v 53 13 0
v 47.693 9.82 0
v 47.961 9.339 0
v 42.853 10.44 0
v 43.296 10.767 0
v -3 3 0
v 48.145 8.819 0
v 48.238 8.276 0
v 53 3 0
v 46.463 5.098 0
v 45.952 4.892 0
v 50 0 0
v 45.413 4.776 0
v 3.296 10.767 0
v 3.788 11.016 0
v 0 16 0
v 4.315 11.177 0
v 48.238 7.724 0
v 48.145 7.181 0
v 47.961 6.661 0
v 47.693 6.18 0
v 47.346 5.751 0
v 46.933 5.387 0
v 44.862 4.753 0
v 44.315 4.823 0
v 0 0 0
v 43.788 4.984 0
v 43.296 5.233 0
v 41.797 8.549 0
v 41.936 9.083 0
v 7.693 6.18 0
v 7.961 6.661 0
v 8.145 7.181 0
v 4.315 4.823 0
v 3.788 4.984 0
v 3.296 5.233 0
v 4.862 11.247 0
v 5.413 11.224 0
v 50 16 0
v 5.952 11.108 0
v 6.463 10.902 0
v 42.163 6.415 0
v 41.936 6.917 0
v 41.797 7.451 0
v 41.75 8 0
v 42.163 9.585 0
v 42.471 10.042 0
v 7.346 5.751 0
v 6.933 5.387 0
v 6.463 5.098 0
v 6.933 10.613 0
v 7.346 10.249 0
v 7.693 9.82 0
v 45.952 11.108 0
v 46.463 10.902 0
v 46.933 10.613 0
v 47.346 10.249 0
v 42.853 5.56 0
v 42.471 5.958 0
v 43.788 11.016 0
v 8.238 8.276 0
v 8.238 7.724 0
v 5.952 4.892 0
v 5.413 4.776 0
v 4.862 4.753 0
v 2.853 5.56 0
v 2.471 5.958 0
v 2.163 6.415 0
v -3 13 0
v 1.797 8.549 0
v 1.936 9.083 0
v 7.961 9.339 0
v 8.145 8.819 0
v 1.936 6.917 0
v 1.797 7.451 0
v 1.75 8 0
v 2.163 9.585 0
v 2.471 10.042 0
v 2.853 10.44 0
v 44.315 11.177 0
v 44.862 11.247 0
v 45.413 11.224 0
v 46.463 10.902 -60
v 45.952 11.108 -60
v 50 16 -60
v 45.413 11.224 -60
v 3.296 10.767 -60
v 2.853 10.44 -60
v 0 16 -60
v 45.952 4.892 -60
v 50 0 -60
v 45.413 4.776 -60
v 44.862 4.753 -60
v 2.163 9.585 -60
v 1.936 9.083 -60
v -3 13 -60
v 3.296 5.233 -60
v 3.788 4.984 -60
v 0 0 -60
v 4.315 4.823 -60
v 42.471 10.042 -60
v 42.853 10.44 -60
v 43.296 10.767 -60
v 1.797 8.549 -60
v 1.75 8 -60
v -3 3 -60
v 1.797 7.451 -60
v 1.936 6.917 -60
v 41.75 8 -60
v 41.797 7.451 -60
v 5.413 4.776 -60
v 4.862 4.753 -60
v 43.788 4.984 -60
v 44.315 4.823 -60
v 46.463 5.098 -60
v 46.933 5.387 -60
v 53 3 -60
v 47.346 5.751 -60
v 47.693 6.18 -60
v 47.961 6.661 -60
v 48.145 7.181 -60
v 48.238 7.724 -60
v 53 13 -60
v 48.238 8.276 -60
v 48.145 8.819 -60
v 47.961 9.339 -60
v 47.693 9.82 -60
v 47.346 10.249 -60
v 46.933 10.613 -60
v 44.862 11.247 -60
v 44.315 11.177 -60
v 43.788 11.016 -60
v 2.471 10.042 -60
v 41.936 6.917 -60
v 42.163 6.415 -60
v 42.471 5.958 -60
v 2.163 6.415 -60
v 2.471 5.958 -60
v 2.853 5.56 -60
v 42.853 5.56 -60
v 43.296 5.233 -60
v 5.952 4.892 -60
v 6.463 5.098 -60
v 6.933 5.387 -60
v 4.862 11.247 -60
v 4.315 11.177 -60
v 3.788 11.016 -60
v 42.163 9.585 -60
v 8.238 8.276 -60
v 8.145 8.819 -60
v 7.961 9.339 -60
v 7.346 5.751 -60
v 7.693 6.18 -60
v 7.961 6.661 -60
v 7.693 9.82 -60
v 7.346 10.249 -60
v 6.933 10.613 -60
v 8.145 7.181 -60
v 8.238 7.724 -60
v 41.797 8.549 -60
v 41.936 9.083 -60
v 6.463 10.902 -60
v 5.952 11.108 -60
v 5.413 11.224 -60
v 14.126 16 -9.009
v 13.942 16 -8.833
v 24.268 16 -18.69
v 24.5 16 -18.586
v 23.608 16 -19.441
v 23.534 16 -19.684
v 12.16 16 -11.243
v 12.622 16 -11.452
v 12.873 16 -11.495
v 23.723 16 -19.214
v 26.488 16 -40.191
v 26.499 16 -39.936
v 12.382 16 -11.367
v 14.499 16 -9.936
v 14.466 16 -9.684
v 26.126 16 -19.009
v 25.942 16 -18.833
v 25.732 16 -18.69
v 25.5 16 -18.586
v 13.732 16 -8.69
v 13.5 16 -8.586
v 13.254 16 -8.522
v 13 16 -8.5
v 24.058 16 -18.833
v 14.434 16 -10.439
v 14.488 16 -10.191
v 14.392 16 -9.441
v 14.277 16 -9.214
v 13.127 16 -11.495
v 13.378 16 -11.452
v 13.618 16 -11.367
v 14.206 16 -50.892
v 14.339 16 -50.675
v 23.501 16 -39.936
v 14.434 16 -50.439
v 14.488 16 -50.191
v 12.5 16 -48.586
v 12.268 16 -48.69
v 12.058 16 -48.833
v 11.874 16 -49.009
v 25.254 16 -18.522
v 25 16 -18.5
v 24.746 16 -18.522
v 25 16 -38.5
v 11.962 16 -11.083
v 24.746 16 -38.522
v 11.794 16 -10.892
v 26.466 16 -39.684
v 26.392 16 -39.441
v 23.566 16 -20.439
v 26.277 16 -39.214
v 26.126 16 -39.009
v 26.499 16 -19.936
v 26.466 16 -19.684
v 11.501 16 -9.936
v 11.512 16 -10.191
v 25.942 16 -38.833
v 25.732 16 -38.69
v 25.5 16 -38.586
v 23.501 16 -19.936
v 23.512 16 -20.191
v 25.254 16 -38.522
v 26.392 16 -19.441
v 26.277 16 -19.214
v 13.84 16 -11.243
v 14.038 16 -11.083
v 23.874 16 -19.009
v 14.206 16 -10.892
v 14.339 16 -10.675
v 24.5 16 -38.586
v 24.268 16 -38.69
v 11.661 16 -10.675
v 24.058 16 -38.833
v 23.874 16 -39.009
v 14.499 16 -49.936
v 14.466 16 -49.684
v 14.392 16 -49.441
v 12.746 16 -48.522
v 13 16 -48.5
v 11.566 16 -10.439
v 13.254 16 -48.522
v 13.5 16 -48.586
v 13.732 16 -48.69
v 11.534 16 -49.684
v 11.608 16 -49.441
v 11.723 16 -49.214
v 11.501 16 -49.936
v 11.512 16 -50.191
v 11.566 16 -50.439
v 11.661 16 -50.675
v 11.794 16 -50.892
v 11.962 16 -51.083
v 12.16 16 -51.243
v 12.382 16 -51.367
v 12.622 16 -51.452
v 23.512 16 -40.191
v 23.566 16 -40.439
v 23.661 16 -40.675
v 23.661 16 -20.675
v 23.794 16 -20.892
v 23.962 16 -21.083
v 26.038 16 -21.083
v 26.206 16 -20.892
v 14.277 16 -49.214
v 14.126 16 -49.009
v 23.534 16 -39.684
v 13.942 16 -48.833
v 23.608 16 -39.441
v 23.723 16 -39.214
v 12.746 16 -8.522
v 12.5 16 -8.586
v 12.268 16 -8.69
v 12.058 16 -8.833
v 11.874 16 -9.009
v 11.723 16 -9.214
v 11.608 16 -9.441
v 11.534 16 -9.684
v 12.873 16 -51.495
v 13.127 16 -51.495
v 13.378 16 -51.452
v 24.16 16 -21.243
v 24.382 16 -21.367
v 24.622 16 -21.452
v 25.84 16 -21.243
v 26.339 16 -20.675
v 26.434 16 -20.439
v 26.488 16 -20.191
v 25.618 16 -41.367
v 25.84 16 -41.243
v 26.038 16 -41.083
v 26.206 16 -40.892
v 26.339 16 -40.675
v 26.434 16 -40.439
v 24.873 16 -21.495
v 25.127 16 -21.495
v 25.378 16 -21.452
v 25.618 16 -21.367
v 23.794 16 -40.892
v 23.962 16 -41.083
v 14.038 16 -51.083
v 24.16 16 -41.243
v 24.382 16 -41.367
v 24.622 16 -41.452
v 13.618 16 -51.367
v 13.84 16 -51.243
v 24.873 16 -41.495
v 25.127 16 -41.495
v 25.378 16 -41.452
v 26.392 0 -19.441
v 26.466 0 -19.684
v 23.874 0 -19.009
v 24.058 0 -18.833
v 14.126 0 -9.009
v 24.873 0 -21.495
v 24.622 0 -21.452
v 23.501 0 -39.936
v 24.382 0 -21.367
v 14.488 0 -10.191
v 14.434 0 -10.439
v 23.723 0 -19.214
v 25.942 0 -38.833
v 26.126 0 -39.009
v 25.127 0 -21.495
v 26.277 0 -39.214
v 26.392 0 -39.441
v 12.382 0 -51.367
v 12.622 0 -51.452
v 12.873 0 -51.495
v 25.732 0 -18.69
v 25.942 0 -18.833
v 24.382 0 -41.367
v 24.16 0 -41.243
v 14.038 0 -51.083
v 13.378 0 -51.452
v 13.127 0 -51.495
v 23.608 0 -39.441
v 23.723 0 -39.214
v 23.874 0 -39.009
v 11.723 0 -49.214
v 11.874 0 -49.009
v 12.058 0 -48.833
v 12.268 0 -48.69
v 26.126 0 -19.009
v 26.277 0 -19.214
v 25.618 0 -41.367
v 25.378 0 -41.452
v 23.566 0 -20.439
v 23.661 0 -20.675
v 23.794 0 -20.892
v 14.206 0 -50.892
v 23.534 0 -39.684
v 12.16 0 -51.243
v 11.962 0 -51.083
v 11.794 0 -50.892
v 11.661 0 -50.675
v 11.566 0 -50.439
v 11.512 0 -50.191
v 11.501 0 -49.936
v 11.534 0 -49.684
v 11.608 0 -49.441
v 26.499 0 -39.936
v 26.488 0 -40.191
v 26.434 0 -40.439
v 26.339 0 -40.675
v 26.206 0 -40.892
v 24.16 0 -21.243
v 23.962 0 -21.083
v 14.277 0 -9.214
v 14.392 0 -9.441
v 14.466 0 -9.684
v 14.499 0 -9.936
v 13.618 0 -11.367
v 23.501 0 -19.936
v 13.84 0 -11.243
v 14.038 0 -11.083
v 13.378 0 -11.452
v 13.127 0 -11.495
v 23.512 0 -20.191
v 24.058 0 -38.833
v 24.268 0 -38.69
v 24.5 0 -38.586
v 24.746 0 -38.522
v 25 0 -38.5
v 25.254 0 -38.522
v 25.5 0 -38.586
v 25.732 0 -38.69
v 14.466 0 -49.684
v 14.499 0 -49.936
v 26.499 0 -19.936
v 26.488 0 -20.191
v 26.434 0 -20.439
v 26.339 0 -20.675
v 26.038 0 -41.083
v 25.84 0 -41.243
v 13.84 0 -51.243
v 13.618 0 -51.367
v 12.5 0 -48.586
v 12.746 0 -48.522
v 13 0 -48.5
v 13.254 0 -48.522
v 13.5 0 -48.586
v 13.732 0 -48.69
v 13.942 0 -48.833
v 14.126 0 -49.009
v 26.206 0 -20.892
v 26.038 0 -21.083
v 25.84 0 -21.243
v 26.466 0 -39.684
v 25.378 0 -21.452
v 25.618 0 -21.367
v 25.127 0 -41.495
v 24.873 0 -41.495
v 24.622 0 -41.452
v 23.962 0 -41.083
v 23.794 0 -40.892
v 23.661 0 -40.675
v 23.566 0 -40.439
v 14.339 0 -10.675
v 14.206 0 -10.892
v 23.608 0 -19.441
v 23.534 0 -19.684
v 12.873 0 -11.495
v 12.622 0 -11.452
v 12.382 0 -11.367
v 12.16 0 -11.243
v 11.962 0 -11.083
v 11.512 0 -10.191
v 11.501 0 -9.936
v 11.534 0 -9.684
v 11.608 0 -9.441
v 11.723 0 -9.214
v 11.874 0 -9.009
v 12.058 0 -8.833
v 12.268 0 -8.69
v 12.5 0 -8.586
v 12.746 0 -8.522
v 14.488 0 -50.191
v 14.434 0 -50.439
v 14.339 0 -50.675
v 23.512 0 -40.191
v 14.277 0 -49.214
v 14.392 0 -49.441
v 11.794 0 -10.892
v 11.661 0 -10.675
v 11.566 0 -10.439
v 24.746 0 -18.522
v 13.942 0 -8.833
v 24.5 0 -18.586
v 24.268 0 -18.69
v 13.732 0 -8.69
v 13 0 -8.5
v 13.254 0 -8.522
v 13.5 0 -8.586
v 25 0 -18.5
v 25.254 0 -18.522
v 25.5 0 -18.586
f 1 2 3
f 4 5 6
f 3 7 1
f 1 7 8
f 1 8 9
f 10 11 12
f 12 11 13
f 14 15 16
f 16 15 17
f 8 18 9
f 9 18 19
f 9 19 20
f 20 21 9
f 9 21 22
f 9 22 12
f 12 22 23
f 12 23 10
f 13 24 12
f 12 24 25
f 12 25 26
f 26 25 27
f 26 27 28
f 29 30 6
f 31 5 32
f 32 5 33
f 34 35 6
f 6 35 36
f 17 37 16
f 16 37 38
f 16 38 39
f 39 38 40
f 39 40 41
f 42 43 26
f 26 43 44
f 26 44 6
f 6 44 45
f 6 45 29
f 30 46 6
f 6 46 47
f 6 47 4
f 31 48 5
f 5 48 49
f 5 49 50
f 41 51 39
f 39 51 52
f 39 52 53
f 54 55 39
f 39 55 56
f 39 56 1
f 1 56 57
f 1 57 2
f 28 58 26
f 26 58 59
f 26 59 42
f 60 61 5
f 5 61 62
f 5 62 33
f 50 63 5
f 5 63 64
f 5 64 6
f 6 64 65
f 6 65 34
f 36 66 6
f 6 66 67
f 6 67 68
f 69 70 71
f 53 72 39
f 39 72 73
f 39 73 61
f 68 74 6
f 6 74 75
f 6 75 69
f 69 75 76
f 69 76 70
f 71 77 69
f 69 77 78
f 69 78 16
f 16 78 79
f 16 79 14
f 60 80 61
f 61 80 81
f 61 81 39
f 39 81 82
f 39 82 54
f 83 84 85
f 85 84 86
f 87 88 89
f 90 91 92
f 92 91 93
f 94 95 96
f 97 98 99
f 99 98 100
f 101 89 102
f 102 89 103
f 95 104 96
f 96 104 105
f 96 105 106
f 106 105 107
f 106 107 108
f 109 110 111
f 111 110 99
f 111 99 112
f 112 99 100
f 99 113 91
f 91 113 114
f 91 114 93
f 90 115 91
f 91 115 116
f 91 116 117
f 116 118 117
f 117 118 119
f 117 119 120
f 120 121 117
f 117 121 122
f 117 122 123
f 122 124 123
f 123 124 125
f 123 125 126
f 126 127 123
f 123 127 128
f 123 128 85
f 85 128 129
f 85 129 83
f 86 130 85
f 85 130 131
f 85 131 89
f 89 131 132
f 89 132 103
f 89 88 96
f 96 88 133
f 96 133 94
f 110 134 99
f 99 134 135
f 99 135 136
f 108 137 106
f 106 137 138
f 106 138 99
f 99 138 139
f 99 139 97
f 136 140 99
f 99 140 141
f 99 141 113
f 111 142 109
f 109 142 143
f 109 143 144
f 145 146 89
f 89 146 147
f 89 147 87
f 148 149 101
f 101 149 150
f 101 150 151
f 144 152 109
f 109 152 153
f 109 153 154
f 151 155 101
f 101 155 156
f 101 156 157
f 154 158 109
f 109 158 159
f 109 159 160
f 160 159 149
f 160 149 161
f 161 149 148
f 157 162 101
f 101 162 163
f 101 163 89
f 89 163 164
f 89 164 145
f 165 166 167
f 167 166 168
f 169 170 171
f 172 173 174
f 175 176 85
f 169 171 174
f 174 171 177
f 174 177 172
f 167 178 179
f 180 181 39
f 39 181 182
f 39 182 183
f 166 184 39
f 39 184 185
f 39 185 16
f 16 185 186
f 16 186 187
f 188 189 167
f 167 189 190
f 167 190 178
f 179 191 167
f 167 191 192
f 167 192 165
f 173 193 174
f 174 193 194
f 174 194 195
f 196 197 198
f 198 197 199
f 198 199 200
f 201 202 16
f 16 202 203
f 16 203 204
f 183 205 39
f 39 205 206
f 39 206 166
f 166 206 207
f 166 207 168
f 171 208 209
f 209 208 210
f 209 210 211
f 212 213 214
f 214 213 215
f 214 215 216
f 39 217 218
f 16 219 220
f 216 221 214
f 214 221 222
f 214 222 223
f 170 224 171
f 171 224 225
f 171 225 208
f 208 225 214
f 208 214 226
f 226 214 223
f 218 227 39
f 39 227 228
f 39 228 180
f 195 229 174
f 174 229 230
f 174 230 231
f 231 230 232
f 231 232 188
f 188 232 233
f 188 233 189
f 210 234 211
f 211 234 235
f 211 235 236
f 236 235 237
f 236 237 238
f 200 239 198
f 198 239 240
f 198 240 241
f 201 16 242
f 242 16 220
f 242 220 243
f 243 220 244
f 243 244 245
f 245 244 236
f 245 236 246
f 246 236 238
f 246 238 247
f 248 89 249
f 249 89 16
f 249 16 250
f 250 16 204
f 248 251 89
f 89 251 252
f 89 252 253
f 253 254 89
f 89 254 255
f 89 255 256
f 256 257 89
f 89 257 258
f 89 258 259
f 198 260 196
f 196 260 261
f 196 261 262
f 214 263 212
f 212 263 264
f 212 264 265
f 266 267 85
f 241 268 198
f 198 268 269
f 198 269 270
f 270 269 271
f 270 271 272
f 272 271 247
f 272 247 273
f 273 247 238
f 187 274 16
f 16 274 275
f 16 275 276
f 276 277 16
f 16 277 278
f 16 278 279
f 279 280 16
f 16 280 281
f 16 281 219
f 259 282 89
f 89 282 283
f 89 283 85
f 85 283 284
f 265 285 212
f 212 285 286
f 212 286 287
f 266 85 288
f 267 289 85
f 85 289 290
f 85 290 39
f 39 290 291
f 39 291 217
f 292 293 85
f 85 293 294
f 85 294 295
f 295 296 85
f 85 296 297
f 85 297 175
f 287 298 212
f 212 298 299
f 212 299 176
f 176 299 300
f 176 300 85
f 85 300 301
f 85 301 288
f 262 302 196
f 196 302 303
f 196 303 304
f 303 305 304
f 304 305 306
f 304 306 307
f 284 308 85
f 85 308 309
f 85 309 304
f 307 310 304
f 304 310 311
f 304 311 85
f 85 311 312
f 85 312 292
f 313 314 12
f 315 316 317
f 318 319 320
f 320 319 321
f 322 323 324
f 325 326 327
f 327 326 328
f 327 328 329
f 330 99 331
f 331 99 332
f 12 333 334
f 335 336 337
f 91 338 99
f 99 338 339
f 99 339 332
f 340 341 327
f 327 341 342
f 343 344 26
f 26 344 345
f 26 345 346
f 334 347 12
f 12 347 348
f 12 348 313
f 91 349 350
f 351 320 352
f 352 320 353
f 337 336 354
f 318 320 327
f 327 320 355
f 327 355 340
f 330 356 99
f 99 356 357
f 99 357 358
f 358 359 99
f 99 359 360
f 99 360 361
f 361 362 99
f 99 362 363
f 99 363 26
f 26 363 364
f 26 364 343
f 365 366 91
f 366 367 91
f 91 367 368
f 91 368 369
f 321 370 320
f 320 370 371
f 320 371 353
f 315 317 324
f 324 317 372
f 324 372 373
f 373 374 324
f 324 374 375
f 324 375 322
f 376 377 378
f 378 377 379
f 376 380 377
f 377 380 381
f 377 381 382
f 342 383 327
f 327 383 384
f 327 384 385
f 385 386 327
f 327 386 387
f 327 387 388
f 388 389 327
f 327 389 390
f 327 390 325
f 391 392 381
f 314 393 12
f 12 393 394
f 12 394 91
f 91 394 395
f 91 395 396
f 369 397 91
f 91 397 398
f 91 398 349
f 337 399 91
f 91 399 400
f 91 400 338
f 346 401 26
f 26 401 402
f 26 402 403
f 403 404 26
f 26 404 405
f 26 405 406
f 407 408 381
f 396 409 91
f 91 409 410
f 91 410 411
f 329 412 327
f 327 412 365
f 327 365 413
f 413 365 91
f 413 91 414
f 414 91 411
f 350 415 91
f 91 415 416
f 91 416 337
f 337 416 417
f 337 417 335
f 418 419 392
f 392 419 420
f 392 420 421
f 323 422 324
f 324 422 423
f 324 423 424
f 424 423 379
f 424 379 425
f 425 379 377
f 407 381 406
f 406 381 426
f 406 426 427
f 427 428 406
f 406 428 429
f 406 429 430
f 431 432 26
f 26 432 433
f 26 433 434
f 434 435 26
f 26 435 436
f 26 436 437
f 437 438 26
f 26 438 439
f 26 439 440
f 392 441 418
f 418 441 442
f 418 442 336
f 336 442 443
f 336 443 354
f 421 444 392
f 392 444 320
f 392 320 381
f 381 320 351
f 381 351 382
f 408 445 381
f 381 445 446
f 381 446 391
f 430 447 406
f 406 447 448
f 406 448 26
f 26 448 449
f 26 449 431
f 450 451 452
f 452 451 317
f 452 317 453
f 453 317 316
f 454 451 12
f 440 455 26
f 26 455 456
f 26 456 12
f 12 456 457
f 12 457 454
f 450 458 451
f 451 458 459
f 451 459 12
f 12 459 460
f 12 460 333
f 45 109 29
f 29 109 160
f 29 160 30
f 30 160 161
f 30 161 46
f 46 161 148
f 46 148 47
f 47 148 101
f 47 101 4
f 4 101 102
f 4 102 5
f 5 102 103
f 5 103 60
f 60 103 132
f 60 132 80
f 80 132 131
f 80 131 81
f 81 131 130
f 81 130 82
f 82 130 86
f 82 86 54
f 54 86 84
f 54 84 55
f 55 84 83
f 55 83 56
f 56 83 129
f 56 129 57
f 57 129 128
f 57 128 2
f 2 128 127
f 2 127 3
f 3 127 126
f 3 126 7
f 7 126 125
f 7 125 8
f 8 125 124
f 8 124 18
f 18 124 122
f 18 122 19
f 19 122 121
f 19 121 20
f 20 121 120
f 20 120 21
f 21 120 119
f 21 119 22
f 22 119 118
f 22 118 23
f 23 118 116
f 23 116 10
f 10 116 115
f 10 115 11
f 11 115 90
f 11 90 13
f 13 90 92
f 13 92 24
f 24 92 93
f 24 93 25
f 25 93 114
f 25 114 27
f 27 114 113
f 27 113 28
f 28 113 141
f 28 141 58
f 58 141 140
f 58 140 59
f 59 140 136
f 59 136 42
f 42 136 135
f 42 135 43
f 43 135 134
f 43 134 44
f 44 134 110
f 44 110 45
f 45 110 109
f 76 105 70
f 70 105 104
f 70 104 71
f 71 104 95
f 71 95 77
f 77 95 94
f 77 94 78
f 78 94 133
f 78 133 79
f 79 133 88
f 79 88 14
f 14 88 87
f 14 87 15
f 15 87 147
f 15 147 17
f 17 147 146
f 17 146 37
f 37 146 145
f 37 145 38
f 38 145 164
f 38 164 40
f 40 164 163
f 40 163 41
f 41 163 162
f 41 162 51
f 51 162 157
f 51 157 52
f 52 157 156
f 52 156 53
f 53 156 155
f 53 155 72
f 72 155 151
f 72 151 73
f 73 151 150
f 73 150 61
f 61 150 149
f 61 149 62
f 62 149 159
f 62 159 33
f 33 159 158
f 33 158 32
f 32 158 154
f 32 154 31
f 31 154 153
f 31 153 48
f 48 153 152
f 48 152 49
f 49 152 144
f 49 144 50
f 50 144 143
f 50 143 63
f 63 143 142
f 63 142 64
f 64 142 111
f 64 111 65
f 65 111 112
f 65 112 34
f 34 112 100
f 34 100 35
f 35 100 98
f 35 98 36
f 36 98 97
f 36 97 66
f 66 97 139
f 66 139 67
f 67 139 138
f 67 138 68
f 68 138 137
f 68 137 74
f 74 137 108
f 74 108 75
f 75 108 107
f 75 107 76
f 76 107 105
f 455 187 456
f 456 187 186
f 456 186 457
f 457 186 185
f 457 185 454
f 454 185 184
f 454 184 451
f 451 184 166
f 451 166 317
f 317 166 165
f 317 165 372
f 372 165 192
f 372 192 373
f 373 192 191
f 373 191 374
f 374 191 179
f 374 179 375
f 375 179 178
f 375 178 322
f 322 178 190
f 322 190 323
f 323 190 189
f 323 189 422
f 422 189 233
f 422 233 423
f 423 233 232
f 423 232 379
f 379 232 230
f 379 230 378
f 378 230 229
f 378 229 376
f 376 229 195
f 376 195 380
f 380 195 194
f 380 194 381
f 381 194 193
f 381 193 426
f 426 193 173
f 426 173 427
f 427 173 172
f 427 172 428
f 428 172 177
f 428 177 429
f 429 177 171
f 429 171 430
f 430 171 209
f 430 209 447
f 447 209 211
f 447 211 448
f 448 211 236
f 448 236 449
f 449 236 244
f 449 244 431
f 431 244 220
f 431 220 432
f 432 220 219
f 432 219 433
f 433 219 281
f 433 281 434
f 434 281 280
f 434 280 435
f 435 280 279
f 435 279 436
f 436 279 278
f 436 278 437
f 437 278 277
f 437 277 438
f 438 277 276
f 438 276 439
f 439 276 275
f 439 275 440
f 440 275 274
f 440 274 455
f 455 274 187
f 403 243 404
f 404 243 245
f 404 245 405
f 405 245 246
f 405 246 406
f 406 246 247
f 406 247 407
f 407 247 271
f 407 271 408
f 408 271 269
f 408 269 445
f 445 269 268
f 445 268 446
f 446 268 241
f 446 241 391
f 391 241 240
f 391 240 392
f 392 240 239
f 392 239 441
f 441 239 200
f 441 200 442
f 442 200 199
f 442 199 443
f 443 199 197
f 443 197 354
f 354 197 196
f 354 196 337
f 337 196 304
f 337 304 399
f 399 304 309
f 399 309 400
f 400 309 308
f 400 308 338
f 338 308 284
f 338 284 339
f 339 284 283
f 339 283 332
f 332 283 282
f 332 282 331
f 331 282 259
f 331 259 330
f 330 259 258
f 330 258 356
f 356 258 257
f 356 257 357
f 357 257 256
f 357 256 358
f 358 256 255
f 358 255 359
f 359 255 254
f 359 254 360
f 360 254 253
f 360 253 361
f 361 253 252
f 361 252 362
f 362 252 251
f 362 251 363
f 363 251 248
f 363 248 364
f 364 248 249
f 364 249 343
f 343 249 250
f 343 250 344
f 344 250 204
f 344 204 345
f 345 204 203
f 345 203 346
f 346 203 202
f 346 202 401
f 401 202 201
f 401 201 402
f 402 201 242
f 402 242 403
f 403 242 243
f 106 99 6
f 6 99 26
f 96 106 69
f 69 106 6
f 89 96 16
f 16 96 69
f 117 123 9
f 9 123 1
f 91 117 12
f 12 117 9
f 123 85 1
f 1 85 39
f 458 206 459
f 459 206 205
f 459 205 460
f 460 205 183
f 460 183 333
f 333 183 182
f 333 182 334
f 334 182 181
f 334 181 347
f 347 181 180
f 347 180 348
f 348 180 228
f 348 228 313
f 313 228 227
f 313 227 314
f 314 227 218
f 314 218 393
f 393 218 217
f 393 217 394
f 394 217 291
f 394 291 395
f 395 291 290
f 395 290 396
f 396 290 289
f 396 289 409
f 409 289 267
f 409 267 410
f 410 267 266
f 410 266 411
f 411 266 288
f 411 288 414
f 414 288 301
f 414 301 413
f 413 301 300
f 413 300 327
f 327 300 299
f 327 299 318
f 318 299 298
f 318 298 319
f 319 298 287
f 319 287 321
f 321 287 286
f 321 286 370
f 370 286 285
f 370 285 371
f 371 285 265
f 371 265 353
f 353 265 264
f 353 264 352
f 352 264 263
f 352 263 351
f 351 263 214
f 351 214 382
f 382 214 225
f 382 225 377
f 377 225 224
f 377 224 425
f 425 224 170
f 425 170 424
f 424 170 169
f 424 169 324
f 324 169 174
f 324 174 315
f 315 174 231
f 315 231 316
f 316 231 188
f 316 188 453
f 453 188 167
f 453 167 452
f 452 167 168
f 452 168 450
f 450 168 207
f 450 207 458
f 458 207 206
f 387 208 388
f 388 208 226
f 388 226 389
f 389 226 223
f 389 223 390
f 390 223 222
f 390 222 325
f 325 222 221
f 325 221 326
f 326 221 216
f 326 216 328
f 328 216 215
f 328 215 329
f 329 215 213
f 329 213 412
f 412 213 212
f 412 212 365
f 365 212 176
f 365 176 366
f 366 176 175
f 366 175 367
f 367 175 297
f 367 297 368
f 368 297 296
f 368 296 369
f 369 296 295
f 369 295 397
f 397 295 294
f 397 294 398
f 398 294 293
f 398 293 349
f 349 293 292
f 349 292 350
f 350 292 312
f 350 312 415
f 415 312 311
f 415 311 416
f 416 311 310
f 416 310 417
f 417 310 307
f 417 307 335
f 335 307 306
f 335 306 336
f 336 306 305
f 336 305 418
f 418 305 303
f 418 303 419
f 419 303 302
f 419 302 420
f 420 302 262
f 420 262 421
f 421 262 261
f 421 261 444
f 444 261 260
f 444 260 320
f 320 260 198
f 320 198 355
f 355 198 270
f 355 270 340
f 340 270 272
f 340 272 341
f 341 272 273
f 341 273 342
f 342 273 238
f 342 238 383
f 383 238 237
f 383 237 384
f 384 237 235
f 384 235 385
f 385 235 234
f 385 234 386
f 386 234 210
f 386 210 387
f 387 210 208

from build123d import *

# Parameters (mm, degrees)
SKETCH_1_W          = 50
SKETCH_1_H          = 60
EXTRUDE_1_DEPTH     = 16
SKETCH_2_R          = 3.25
CUT_EXTRUDE_1_DEPTH = 100
SKETCH_3_R          = 1.5
CUT_EXTRUDE_2_DEPTH = 100
EXTRUDE_2_DEPTH     = 60
SKETCH_5_R          = 1.5
CUT_EXTRUDE_3_DEPTH = 60


with BuildPart() as part:
    # 草圖1 → 填料-伸長1 (new body)
    with BuildSketch(Plane(origin=(0, 0, 0), x_dir=(1, 0, 0), z_dir=(0, 1, 0))):
        with Locations((25, 30)):
            Rectangle(SKETCH_1_W, SKETCH_1_H)
    extrude(amount=EXTRUDE_1_DEPTH)

    # 草圖2 → 除料-伸長1 (cut)
    with BuildSketch(Plane(origin=(0, 0, -60), x_dir=(-1, 0, 0), z_dir=(0, 0, -1))):
        with Locations((-45, 8)):
            Circle(SKETCH_2_R)
        with Locations((-5, 8)):
            Circle(SKETCH_2_R)
    extrude(amount=-CUT_EXTRUDE_1_DEPTH, mode=Mode.SUBTRACT)

    # 草圖3 → 除料-伸長2 (cut)
    with BuildSketch(Plane(origin=(0, 16, 0), x_dir=(1, 0, 0), z_dir=(0, 1, 0))):
        with Locations(Location((13, 10, 0), (0, 0, 270))):
            Circle(SKETCH_3_R)
        with Locations(Location((13, 50, 0), (0, 0, 270))):
            Circle(SKETCH_3_R)
    extrude(amount=-CUT_EXTRUDE_2_DEPTH, mode=Mode.SUBTRACT)

    # 草圖4 → 填料-伸長2 (add)
    with BuildSketch(Plane.XY):
        Polygon((0, 0), (-3, 3), (-3, 13), (0, 16), align=None)
        Polygon((53, 13), (50, 16), (50, 0), (53, 3), align=None)
    extrude(amount=-EXTRUDE_2_DEPTH)

    # 草圖5 → 除料-伸長3 (cut)
    with BuildSketch(Plane(origin=(0, 16, 0), x_dir=(1, 0, 0), z_dir=(0, 1, 0))):
        with Locations(Location((25, 20, 0), (0, 0, 270))):
            Circle(SKETCH_5_R)
        with Locations(Location((25, 40, 0), (0, 0, 270))):
            Circle(SKETCH_5_R)
    extrude(amount=-CUT_EXTRUDE_3_DEPTH, mode=Mode.SUBTRACT)


solid = part.part
